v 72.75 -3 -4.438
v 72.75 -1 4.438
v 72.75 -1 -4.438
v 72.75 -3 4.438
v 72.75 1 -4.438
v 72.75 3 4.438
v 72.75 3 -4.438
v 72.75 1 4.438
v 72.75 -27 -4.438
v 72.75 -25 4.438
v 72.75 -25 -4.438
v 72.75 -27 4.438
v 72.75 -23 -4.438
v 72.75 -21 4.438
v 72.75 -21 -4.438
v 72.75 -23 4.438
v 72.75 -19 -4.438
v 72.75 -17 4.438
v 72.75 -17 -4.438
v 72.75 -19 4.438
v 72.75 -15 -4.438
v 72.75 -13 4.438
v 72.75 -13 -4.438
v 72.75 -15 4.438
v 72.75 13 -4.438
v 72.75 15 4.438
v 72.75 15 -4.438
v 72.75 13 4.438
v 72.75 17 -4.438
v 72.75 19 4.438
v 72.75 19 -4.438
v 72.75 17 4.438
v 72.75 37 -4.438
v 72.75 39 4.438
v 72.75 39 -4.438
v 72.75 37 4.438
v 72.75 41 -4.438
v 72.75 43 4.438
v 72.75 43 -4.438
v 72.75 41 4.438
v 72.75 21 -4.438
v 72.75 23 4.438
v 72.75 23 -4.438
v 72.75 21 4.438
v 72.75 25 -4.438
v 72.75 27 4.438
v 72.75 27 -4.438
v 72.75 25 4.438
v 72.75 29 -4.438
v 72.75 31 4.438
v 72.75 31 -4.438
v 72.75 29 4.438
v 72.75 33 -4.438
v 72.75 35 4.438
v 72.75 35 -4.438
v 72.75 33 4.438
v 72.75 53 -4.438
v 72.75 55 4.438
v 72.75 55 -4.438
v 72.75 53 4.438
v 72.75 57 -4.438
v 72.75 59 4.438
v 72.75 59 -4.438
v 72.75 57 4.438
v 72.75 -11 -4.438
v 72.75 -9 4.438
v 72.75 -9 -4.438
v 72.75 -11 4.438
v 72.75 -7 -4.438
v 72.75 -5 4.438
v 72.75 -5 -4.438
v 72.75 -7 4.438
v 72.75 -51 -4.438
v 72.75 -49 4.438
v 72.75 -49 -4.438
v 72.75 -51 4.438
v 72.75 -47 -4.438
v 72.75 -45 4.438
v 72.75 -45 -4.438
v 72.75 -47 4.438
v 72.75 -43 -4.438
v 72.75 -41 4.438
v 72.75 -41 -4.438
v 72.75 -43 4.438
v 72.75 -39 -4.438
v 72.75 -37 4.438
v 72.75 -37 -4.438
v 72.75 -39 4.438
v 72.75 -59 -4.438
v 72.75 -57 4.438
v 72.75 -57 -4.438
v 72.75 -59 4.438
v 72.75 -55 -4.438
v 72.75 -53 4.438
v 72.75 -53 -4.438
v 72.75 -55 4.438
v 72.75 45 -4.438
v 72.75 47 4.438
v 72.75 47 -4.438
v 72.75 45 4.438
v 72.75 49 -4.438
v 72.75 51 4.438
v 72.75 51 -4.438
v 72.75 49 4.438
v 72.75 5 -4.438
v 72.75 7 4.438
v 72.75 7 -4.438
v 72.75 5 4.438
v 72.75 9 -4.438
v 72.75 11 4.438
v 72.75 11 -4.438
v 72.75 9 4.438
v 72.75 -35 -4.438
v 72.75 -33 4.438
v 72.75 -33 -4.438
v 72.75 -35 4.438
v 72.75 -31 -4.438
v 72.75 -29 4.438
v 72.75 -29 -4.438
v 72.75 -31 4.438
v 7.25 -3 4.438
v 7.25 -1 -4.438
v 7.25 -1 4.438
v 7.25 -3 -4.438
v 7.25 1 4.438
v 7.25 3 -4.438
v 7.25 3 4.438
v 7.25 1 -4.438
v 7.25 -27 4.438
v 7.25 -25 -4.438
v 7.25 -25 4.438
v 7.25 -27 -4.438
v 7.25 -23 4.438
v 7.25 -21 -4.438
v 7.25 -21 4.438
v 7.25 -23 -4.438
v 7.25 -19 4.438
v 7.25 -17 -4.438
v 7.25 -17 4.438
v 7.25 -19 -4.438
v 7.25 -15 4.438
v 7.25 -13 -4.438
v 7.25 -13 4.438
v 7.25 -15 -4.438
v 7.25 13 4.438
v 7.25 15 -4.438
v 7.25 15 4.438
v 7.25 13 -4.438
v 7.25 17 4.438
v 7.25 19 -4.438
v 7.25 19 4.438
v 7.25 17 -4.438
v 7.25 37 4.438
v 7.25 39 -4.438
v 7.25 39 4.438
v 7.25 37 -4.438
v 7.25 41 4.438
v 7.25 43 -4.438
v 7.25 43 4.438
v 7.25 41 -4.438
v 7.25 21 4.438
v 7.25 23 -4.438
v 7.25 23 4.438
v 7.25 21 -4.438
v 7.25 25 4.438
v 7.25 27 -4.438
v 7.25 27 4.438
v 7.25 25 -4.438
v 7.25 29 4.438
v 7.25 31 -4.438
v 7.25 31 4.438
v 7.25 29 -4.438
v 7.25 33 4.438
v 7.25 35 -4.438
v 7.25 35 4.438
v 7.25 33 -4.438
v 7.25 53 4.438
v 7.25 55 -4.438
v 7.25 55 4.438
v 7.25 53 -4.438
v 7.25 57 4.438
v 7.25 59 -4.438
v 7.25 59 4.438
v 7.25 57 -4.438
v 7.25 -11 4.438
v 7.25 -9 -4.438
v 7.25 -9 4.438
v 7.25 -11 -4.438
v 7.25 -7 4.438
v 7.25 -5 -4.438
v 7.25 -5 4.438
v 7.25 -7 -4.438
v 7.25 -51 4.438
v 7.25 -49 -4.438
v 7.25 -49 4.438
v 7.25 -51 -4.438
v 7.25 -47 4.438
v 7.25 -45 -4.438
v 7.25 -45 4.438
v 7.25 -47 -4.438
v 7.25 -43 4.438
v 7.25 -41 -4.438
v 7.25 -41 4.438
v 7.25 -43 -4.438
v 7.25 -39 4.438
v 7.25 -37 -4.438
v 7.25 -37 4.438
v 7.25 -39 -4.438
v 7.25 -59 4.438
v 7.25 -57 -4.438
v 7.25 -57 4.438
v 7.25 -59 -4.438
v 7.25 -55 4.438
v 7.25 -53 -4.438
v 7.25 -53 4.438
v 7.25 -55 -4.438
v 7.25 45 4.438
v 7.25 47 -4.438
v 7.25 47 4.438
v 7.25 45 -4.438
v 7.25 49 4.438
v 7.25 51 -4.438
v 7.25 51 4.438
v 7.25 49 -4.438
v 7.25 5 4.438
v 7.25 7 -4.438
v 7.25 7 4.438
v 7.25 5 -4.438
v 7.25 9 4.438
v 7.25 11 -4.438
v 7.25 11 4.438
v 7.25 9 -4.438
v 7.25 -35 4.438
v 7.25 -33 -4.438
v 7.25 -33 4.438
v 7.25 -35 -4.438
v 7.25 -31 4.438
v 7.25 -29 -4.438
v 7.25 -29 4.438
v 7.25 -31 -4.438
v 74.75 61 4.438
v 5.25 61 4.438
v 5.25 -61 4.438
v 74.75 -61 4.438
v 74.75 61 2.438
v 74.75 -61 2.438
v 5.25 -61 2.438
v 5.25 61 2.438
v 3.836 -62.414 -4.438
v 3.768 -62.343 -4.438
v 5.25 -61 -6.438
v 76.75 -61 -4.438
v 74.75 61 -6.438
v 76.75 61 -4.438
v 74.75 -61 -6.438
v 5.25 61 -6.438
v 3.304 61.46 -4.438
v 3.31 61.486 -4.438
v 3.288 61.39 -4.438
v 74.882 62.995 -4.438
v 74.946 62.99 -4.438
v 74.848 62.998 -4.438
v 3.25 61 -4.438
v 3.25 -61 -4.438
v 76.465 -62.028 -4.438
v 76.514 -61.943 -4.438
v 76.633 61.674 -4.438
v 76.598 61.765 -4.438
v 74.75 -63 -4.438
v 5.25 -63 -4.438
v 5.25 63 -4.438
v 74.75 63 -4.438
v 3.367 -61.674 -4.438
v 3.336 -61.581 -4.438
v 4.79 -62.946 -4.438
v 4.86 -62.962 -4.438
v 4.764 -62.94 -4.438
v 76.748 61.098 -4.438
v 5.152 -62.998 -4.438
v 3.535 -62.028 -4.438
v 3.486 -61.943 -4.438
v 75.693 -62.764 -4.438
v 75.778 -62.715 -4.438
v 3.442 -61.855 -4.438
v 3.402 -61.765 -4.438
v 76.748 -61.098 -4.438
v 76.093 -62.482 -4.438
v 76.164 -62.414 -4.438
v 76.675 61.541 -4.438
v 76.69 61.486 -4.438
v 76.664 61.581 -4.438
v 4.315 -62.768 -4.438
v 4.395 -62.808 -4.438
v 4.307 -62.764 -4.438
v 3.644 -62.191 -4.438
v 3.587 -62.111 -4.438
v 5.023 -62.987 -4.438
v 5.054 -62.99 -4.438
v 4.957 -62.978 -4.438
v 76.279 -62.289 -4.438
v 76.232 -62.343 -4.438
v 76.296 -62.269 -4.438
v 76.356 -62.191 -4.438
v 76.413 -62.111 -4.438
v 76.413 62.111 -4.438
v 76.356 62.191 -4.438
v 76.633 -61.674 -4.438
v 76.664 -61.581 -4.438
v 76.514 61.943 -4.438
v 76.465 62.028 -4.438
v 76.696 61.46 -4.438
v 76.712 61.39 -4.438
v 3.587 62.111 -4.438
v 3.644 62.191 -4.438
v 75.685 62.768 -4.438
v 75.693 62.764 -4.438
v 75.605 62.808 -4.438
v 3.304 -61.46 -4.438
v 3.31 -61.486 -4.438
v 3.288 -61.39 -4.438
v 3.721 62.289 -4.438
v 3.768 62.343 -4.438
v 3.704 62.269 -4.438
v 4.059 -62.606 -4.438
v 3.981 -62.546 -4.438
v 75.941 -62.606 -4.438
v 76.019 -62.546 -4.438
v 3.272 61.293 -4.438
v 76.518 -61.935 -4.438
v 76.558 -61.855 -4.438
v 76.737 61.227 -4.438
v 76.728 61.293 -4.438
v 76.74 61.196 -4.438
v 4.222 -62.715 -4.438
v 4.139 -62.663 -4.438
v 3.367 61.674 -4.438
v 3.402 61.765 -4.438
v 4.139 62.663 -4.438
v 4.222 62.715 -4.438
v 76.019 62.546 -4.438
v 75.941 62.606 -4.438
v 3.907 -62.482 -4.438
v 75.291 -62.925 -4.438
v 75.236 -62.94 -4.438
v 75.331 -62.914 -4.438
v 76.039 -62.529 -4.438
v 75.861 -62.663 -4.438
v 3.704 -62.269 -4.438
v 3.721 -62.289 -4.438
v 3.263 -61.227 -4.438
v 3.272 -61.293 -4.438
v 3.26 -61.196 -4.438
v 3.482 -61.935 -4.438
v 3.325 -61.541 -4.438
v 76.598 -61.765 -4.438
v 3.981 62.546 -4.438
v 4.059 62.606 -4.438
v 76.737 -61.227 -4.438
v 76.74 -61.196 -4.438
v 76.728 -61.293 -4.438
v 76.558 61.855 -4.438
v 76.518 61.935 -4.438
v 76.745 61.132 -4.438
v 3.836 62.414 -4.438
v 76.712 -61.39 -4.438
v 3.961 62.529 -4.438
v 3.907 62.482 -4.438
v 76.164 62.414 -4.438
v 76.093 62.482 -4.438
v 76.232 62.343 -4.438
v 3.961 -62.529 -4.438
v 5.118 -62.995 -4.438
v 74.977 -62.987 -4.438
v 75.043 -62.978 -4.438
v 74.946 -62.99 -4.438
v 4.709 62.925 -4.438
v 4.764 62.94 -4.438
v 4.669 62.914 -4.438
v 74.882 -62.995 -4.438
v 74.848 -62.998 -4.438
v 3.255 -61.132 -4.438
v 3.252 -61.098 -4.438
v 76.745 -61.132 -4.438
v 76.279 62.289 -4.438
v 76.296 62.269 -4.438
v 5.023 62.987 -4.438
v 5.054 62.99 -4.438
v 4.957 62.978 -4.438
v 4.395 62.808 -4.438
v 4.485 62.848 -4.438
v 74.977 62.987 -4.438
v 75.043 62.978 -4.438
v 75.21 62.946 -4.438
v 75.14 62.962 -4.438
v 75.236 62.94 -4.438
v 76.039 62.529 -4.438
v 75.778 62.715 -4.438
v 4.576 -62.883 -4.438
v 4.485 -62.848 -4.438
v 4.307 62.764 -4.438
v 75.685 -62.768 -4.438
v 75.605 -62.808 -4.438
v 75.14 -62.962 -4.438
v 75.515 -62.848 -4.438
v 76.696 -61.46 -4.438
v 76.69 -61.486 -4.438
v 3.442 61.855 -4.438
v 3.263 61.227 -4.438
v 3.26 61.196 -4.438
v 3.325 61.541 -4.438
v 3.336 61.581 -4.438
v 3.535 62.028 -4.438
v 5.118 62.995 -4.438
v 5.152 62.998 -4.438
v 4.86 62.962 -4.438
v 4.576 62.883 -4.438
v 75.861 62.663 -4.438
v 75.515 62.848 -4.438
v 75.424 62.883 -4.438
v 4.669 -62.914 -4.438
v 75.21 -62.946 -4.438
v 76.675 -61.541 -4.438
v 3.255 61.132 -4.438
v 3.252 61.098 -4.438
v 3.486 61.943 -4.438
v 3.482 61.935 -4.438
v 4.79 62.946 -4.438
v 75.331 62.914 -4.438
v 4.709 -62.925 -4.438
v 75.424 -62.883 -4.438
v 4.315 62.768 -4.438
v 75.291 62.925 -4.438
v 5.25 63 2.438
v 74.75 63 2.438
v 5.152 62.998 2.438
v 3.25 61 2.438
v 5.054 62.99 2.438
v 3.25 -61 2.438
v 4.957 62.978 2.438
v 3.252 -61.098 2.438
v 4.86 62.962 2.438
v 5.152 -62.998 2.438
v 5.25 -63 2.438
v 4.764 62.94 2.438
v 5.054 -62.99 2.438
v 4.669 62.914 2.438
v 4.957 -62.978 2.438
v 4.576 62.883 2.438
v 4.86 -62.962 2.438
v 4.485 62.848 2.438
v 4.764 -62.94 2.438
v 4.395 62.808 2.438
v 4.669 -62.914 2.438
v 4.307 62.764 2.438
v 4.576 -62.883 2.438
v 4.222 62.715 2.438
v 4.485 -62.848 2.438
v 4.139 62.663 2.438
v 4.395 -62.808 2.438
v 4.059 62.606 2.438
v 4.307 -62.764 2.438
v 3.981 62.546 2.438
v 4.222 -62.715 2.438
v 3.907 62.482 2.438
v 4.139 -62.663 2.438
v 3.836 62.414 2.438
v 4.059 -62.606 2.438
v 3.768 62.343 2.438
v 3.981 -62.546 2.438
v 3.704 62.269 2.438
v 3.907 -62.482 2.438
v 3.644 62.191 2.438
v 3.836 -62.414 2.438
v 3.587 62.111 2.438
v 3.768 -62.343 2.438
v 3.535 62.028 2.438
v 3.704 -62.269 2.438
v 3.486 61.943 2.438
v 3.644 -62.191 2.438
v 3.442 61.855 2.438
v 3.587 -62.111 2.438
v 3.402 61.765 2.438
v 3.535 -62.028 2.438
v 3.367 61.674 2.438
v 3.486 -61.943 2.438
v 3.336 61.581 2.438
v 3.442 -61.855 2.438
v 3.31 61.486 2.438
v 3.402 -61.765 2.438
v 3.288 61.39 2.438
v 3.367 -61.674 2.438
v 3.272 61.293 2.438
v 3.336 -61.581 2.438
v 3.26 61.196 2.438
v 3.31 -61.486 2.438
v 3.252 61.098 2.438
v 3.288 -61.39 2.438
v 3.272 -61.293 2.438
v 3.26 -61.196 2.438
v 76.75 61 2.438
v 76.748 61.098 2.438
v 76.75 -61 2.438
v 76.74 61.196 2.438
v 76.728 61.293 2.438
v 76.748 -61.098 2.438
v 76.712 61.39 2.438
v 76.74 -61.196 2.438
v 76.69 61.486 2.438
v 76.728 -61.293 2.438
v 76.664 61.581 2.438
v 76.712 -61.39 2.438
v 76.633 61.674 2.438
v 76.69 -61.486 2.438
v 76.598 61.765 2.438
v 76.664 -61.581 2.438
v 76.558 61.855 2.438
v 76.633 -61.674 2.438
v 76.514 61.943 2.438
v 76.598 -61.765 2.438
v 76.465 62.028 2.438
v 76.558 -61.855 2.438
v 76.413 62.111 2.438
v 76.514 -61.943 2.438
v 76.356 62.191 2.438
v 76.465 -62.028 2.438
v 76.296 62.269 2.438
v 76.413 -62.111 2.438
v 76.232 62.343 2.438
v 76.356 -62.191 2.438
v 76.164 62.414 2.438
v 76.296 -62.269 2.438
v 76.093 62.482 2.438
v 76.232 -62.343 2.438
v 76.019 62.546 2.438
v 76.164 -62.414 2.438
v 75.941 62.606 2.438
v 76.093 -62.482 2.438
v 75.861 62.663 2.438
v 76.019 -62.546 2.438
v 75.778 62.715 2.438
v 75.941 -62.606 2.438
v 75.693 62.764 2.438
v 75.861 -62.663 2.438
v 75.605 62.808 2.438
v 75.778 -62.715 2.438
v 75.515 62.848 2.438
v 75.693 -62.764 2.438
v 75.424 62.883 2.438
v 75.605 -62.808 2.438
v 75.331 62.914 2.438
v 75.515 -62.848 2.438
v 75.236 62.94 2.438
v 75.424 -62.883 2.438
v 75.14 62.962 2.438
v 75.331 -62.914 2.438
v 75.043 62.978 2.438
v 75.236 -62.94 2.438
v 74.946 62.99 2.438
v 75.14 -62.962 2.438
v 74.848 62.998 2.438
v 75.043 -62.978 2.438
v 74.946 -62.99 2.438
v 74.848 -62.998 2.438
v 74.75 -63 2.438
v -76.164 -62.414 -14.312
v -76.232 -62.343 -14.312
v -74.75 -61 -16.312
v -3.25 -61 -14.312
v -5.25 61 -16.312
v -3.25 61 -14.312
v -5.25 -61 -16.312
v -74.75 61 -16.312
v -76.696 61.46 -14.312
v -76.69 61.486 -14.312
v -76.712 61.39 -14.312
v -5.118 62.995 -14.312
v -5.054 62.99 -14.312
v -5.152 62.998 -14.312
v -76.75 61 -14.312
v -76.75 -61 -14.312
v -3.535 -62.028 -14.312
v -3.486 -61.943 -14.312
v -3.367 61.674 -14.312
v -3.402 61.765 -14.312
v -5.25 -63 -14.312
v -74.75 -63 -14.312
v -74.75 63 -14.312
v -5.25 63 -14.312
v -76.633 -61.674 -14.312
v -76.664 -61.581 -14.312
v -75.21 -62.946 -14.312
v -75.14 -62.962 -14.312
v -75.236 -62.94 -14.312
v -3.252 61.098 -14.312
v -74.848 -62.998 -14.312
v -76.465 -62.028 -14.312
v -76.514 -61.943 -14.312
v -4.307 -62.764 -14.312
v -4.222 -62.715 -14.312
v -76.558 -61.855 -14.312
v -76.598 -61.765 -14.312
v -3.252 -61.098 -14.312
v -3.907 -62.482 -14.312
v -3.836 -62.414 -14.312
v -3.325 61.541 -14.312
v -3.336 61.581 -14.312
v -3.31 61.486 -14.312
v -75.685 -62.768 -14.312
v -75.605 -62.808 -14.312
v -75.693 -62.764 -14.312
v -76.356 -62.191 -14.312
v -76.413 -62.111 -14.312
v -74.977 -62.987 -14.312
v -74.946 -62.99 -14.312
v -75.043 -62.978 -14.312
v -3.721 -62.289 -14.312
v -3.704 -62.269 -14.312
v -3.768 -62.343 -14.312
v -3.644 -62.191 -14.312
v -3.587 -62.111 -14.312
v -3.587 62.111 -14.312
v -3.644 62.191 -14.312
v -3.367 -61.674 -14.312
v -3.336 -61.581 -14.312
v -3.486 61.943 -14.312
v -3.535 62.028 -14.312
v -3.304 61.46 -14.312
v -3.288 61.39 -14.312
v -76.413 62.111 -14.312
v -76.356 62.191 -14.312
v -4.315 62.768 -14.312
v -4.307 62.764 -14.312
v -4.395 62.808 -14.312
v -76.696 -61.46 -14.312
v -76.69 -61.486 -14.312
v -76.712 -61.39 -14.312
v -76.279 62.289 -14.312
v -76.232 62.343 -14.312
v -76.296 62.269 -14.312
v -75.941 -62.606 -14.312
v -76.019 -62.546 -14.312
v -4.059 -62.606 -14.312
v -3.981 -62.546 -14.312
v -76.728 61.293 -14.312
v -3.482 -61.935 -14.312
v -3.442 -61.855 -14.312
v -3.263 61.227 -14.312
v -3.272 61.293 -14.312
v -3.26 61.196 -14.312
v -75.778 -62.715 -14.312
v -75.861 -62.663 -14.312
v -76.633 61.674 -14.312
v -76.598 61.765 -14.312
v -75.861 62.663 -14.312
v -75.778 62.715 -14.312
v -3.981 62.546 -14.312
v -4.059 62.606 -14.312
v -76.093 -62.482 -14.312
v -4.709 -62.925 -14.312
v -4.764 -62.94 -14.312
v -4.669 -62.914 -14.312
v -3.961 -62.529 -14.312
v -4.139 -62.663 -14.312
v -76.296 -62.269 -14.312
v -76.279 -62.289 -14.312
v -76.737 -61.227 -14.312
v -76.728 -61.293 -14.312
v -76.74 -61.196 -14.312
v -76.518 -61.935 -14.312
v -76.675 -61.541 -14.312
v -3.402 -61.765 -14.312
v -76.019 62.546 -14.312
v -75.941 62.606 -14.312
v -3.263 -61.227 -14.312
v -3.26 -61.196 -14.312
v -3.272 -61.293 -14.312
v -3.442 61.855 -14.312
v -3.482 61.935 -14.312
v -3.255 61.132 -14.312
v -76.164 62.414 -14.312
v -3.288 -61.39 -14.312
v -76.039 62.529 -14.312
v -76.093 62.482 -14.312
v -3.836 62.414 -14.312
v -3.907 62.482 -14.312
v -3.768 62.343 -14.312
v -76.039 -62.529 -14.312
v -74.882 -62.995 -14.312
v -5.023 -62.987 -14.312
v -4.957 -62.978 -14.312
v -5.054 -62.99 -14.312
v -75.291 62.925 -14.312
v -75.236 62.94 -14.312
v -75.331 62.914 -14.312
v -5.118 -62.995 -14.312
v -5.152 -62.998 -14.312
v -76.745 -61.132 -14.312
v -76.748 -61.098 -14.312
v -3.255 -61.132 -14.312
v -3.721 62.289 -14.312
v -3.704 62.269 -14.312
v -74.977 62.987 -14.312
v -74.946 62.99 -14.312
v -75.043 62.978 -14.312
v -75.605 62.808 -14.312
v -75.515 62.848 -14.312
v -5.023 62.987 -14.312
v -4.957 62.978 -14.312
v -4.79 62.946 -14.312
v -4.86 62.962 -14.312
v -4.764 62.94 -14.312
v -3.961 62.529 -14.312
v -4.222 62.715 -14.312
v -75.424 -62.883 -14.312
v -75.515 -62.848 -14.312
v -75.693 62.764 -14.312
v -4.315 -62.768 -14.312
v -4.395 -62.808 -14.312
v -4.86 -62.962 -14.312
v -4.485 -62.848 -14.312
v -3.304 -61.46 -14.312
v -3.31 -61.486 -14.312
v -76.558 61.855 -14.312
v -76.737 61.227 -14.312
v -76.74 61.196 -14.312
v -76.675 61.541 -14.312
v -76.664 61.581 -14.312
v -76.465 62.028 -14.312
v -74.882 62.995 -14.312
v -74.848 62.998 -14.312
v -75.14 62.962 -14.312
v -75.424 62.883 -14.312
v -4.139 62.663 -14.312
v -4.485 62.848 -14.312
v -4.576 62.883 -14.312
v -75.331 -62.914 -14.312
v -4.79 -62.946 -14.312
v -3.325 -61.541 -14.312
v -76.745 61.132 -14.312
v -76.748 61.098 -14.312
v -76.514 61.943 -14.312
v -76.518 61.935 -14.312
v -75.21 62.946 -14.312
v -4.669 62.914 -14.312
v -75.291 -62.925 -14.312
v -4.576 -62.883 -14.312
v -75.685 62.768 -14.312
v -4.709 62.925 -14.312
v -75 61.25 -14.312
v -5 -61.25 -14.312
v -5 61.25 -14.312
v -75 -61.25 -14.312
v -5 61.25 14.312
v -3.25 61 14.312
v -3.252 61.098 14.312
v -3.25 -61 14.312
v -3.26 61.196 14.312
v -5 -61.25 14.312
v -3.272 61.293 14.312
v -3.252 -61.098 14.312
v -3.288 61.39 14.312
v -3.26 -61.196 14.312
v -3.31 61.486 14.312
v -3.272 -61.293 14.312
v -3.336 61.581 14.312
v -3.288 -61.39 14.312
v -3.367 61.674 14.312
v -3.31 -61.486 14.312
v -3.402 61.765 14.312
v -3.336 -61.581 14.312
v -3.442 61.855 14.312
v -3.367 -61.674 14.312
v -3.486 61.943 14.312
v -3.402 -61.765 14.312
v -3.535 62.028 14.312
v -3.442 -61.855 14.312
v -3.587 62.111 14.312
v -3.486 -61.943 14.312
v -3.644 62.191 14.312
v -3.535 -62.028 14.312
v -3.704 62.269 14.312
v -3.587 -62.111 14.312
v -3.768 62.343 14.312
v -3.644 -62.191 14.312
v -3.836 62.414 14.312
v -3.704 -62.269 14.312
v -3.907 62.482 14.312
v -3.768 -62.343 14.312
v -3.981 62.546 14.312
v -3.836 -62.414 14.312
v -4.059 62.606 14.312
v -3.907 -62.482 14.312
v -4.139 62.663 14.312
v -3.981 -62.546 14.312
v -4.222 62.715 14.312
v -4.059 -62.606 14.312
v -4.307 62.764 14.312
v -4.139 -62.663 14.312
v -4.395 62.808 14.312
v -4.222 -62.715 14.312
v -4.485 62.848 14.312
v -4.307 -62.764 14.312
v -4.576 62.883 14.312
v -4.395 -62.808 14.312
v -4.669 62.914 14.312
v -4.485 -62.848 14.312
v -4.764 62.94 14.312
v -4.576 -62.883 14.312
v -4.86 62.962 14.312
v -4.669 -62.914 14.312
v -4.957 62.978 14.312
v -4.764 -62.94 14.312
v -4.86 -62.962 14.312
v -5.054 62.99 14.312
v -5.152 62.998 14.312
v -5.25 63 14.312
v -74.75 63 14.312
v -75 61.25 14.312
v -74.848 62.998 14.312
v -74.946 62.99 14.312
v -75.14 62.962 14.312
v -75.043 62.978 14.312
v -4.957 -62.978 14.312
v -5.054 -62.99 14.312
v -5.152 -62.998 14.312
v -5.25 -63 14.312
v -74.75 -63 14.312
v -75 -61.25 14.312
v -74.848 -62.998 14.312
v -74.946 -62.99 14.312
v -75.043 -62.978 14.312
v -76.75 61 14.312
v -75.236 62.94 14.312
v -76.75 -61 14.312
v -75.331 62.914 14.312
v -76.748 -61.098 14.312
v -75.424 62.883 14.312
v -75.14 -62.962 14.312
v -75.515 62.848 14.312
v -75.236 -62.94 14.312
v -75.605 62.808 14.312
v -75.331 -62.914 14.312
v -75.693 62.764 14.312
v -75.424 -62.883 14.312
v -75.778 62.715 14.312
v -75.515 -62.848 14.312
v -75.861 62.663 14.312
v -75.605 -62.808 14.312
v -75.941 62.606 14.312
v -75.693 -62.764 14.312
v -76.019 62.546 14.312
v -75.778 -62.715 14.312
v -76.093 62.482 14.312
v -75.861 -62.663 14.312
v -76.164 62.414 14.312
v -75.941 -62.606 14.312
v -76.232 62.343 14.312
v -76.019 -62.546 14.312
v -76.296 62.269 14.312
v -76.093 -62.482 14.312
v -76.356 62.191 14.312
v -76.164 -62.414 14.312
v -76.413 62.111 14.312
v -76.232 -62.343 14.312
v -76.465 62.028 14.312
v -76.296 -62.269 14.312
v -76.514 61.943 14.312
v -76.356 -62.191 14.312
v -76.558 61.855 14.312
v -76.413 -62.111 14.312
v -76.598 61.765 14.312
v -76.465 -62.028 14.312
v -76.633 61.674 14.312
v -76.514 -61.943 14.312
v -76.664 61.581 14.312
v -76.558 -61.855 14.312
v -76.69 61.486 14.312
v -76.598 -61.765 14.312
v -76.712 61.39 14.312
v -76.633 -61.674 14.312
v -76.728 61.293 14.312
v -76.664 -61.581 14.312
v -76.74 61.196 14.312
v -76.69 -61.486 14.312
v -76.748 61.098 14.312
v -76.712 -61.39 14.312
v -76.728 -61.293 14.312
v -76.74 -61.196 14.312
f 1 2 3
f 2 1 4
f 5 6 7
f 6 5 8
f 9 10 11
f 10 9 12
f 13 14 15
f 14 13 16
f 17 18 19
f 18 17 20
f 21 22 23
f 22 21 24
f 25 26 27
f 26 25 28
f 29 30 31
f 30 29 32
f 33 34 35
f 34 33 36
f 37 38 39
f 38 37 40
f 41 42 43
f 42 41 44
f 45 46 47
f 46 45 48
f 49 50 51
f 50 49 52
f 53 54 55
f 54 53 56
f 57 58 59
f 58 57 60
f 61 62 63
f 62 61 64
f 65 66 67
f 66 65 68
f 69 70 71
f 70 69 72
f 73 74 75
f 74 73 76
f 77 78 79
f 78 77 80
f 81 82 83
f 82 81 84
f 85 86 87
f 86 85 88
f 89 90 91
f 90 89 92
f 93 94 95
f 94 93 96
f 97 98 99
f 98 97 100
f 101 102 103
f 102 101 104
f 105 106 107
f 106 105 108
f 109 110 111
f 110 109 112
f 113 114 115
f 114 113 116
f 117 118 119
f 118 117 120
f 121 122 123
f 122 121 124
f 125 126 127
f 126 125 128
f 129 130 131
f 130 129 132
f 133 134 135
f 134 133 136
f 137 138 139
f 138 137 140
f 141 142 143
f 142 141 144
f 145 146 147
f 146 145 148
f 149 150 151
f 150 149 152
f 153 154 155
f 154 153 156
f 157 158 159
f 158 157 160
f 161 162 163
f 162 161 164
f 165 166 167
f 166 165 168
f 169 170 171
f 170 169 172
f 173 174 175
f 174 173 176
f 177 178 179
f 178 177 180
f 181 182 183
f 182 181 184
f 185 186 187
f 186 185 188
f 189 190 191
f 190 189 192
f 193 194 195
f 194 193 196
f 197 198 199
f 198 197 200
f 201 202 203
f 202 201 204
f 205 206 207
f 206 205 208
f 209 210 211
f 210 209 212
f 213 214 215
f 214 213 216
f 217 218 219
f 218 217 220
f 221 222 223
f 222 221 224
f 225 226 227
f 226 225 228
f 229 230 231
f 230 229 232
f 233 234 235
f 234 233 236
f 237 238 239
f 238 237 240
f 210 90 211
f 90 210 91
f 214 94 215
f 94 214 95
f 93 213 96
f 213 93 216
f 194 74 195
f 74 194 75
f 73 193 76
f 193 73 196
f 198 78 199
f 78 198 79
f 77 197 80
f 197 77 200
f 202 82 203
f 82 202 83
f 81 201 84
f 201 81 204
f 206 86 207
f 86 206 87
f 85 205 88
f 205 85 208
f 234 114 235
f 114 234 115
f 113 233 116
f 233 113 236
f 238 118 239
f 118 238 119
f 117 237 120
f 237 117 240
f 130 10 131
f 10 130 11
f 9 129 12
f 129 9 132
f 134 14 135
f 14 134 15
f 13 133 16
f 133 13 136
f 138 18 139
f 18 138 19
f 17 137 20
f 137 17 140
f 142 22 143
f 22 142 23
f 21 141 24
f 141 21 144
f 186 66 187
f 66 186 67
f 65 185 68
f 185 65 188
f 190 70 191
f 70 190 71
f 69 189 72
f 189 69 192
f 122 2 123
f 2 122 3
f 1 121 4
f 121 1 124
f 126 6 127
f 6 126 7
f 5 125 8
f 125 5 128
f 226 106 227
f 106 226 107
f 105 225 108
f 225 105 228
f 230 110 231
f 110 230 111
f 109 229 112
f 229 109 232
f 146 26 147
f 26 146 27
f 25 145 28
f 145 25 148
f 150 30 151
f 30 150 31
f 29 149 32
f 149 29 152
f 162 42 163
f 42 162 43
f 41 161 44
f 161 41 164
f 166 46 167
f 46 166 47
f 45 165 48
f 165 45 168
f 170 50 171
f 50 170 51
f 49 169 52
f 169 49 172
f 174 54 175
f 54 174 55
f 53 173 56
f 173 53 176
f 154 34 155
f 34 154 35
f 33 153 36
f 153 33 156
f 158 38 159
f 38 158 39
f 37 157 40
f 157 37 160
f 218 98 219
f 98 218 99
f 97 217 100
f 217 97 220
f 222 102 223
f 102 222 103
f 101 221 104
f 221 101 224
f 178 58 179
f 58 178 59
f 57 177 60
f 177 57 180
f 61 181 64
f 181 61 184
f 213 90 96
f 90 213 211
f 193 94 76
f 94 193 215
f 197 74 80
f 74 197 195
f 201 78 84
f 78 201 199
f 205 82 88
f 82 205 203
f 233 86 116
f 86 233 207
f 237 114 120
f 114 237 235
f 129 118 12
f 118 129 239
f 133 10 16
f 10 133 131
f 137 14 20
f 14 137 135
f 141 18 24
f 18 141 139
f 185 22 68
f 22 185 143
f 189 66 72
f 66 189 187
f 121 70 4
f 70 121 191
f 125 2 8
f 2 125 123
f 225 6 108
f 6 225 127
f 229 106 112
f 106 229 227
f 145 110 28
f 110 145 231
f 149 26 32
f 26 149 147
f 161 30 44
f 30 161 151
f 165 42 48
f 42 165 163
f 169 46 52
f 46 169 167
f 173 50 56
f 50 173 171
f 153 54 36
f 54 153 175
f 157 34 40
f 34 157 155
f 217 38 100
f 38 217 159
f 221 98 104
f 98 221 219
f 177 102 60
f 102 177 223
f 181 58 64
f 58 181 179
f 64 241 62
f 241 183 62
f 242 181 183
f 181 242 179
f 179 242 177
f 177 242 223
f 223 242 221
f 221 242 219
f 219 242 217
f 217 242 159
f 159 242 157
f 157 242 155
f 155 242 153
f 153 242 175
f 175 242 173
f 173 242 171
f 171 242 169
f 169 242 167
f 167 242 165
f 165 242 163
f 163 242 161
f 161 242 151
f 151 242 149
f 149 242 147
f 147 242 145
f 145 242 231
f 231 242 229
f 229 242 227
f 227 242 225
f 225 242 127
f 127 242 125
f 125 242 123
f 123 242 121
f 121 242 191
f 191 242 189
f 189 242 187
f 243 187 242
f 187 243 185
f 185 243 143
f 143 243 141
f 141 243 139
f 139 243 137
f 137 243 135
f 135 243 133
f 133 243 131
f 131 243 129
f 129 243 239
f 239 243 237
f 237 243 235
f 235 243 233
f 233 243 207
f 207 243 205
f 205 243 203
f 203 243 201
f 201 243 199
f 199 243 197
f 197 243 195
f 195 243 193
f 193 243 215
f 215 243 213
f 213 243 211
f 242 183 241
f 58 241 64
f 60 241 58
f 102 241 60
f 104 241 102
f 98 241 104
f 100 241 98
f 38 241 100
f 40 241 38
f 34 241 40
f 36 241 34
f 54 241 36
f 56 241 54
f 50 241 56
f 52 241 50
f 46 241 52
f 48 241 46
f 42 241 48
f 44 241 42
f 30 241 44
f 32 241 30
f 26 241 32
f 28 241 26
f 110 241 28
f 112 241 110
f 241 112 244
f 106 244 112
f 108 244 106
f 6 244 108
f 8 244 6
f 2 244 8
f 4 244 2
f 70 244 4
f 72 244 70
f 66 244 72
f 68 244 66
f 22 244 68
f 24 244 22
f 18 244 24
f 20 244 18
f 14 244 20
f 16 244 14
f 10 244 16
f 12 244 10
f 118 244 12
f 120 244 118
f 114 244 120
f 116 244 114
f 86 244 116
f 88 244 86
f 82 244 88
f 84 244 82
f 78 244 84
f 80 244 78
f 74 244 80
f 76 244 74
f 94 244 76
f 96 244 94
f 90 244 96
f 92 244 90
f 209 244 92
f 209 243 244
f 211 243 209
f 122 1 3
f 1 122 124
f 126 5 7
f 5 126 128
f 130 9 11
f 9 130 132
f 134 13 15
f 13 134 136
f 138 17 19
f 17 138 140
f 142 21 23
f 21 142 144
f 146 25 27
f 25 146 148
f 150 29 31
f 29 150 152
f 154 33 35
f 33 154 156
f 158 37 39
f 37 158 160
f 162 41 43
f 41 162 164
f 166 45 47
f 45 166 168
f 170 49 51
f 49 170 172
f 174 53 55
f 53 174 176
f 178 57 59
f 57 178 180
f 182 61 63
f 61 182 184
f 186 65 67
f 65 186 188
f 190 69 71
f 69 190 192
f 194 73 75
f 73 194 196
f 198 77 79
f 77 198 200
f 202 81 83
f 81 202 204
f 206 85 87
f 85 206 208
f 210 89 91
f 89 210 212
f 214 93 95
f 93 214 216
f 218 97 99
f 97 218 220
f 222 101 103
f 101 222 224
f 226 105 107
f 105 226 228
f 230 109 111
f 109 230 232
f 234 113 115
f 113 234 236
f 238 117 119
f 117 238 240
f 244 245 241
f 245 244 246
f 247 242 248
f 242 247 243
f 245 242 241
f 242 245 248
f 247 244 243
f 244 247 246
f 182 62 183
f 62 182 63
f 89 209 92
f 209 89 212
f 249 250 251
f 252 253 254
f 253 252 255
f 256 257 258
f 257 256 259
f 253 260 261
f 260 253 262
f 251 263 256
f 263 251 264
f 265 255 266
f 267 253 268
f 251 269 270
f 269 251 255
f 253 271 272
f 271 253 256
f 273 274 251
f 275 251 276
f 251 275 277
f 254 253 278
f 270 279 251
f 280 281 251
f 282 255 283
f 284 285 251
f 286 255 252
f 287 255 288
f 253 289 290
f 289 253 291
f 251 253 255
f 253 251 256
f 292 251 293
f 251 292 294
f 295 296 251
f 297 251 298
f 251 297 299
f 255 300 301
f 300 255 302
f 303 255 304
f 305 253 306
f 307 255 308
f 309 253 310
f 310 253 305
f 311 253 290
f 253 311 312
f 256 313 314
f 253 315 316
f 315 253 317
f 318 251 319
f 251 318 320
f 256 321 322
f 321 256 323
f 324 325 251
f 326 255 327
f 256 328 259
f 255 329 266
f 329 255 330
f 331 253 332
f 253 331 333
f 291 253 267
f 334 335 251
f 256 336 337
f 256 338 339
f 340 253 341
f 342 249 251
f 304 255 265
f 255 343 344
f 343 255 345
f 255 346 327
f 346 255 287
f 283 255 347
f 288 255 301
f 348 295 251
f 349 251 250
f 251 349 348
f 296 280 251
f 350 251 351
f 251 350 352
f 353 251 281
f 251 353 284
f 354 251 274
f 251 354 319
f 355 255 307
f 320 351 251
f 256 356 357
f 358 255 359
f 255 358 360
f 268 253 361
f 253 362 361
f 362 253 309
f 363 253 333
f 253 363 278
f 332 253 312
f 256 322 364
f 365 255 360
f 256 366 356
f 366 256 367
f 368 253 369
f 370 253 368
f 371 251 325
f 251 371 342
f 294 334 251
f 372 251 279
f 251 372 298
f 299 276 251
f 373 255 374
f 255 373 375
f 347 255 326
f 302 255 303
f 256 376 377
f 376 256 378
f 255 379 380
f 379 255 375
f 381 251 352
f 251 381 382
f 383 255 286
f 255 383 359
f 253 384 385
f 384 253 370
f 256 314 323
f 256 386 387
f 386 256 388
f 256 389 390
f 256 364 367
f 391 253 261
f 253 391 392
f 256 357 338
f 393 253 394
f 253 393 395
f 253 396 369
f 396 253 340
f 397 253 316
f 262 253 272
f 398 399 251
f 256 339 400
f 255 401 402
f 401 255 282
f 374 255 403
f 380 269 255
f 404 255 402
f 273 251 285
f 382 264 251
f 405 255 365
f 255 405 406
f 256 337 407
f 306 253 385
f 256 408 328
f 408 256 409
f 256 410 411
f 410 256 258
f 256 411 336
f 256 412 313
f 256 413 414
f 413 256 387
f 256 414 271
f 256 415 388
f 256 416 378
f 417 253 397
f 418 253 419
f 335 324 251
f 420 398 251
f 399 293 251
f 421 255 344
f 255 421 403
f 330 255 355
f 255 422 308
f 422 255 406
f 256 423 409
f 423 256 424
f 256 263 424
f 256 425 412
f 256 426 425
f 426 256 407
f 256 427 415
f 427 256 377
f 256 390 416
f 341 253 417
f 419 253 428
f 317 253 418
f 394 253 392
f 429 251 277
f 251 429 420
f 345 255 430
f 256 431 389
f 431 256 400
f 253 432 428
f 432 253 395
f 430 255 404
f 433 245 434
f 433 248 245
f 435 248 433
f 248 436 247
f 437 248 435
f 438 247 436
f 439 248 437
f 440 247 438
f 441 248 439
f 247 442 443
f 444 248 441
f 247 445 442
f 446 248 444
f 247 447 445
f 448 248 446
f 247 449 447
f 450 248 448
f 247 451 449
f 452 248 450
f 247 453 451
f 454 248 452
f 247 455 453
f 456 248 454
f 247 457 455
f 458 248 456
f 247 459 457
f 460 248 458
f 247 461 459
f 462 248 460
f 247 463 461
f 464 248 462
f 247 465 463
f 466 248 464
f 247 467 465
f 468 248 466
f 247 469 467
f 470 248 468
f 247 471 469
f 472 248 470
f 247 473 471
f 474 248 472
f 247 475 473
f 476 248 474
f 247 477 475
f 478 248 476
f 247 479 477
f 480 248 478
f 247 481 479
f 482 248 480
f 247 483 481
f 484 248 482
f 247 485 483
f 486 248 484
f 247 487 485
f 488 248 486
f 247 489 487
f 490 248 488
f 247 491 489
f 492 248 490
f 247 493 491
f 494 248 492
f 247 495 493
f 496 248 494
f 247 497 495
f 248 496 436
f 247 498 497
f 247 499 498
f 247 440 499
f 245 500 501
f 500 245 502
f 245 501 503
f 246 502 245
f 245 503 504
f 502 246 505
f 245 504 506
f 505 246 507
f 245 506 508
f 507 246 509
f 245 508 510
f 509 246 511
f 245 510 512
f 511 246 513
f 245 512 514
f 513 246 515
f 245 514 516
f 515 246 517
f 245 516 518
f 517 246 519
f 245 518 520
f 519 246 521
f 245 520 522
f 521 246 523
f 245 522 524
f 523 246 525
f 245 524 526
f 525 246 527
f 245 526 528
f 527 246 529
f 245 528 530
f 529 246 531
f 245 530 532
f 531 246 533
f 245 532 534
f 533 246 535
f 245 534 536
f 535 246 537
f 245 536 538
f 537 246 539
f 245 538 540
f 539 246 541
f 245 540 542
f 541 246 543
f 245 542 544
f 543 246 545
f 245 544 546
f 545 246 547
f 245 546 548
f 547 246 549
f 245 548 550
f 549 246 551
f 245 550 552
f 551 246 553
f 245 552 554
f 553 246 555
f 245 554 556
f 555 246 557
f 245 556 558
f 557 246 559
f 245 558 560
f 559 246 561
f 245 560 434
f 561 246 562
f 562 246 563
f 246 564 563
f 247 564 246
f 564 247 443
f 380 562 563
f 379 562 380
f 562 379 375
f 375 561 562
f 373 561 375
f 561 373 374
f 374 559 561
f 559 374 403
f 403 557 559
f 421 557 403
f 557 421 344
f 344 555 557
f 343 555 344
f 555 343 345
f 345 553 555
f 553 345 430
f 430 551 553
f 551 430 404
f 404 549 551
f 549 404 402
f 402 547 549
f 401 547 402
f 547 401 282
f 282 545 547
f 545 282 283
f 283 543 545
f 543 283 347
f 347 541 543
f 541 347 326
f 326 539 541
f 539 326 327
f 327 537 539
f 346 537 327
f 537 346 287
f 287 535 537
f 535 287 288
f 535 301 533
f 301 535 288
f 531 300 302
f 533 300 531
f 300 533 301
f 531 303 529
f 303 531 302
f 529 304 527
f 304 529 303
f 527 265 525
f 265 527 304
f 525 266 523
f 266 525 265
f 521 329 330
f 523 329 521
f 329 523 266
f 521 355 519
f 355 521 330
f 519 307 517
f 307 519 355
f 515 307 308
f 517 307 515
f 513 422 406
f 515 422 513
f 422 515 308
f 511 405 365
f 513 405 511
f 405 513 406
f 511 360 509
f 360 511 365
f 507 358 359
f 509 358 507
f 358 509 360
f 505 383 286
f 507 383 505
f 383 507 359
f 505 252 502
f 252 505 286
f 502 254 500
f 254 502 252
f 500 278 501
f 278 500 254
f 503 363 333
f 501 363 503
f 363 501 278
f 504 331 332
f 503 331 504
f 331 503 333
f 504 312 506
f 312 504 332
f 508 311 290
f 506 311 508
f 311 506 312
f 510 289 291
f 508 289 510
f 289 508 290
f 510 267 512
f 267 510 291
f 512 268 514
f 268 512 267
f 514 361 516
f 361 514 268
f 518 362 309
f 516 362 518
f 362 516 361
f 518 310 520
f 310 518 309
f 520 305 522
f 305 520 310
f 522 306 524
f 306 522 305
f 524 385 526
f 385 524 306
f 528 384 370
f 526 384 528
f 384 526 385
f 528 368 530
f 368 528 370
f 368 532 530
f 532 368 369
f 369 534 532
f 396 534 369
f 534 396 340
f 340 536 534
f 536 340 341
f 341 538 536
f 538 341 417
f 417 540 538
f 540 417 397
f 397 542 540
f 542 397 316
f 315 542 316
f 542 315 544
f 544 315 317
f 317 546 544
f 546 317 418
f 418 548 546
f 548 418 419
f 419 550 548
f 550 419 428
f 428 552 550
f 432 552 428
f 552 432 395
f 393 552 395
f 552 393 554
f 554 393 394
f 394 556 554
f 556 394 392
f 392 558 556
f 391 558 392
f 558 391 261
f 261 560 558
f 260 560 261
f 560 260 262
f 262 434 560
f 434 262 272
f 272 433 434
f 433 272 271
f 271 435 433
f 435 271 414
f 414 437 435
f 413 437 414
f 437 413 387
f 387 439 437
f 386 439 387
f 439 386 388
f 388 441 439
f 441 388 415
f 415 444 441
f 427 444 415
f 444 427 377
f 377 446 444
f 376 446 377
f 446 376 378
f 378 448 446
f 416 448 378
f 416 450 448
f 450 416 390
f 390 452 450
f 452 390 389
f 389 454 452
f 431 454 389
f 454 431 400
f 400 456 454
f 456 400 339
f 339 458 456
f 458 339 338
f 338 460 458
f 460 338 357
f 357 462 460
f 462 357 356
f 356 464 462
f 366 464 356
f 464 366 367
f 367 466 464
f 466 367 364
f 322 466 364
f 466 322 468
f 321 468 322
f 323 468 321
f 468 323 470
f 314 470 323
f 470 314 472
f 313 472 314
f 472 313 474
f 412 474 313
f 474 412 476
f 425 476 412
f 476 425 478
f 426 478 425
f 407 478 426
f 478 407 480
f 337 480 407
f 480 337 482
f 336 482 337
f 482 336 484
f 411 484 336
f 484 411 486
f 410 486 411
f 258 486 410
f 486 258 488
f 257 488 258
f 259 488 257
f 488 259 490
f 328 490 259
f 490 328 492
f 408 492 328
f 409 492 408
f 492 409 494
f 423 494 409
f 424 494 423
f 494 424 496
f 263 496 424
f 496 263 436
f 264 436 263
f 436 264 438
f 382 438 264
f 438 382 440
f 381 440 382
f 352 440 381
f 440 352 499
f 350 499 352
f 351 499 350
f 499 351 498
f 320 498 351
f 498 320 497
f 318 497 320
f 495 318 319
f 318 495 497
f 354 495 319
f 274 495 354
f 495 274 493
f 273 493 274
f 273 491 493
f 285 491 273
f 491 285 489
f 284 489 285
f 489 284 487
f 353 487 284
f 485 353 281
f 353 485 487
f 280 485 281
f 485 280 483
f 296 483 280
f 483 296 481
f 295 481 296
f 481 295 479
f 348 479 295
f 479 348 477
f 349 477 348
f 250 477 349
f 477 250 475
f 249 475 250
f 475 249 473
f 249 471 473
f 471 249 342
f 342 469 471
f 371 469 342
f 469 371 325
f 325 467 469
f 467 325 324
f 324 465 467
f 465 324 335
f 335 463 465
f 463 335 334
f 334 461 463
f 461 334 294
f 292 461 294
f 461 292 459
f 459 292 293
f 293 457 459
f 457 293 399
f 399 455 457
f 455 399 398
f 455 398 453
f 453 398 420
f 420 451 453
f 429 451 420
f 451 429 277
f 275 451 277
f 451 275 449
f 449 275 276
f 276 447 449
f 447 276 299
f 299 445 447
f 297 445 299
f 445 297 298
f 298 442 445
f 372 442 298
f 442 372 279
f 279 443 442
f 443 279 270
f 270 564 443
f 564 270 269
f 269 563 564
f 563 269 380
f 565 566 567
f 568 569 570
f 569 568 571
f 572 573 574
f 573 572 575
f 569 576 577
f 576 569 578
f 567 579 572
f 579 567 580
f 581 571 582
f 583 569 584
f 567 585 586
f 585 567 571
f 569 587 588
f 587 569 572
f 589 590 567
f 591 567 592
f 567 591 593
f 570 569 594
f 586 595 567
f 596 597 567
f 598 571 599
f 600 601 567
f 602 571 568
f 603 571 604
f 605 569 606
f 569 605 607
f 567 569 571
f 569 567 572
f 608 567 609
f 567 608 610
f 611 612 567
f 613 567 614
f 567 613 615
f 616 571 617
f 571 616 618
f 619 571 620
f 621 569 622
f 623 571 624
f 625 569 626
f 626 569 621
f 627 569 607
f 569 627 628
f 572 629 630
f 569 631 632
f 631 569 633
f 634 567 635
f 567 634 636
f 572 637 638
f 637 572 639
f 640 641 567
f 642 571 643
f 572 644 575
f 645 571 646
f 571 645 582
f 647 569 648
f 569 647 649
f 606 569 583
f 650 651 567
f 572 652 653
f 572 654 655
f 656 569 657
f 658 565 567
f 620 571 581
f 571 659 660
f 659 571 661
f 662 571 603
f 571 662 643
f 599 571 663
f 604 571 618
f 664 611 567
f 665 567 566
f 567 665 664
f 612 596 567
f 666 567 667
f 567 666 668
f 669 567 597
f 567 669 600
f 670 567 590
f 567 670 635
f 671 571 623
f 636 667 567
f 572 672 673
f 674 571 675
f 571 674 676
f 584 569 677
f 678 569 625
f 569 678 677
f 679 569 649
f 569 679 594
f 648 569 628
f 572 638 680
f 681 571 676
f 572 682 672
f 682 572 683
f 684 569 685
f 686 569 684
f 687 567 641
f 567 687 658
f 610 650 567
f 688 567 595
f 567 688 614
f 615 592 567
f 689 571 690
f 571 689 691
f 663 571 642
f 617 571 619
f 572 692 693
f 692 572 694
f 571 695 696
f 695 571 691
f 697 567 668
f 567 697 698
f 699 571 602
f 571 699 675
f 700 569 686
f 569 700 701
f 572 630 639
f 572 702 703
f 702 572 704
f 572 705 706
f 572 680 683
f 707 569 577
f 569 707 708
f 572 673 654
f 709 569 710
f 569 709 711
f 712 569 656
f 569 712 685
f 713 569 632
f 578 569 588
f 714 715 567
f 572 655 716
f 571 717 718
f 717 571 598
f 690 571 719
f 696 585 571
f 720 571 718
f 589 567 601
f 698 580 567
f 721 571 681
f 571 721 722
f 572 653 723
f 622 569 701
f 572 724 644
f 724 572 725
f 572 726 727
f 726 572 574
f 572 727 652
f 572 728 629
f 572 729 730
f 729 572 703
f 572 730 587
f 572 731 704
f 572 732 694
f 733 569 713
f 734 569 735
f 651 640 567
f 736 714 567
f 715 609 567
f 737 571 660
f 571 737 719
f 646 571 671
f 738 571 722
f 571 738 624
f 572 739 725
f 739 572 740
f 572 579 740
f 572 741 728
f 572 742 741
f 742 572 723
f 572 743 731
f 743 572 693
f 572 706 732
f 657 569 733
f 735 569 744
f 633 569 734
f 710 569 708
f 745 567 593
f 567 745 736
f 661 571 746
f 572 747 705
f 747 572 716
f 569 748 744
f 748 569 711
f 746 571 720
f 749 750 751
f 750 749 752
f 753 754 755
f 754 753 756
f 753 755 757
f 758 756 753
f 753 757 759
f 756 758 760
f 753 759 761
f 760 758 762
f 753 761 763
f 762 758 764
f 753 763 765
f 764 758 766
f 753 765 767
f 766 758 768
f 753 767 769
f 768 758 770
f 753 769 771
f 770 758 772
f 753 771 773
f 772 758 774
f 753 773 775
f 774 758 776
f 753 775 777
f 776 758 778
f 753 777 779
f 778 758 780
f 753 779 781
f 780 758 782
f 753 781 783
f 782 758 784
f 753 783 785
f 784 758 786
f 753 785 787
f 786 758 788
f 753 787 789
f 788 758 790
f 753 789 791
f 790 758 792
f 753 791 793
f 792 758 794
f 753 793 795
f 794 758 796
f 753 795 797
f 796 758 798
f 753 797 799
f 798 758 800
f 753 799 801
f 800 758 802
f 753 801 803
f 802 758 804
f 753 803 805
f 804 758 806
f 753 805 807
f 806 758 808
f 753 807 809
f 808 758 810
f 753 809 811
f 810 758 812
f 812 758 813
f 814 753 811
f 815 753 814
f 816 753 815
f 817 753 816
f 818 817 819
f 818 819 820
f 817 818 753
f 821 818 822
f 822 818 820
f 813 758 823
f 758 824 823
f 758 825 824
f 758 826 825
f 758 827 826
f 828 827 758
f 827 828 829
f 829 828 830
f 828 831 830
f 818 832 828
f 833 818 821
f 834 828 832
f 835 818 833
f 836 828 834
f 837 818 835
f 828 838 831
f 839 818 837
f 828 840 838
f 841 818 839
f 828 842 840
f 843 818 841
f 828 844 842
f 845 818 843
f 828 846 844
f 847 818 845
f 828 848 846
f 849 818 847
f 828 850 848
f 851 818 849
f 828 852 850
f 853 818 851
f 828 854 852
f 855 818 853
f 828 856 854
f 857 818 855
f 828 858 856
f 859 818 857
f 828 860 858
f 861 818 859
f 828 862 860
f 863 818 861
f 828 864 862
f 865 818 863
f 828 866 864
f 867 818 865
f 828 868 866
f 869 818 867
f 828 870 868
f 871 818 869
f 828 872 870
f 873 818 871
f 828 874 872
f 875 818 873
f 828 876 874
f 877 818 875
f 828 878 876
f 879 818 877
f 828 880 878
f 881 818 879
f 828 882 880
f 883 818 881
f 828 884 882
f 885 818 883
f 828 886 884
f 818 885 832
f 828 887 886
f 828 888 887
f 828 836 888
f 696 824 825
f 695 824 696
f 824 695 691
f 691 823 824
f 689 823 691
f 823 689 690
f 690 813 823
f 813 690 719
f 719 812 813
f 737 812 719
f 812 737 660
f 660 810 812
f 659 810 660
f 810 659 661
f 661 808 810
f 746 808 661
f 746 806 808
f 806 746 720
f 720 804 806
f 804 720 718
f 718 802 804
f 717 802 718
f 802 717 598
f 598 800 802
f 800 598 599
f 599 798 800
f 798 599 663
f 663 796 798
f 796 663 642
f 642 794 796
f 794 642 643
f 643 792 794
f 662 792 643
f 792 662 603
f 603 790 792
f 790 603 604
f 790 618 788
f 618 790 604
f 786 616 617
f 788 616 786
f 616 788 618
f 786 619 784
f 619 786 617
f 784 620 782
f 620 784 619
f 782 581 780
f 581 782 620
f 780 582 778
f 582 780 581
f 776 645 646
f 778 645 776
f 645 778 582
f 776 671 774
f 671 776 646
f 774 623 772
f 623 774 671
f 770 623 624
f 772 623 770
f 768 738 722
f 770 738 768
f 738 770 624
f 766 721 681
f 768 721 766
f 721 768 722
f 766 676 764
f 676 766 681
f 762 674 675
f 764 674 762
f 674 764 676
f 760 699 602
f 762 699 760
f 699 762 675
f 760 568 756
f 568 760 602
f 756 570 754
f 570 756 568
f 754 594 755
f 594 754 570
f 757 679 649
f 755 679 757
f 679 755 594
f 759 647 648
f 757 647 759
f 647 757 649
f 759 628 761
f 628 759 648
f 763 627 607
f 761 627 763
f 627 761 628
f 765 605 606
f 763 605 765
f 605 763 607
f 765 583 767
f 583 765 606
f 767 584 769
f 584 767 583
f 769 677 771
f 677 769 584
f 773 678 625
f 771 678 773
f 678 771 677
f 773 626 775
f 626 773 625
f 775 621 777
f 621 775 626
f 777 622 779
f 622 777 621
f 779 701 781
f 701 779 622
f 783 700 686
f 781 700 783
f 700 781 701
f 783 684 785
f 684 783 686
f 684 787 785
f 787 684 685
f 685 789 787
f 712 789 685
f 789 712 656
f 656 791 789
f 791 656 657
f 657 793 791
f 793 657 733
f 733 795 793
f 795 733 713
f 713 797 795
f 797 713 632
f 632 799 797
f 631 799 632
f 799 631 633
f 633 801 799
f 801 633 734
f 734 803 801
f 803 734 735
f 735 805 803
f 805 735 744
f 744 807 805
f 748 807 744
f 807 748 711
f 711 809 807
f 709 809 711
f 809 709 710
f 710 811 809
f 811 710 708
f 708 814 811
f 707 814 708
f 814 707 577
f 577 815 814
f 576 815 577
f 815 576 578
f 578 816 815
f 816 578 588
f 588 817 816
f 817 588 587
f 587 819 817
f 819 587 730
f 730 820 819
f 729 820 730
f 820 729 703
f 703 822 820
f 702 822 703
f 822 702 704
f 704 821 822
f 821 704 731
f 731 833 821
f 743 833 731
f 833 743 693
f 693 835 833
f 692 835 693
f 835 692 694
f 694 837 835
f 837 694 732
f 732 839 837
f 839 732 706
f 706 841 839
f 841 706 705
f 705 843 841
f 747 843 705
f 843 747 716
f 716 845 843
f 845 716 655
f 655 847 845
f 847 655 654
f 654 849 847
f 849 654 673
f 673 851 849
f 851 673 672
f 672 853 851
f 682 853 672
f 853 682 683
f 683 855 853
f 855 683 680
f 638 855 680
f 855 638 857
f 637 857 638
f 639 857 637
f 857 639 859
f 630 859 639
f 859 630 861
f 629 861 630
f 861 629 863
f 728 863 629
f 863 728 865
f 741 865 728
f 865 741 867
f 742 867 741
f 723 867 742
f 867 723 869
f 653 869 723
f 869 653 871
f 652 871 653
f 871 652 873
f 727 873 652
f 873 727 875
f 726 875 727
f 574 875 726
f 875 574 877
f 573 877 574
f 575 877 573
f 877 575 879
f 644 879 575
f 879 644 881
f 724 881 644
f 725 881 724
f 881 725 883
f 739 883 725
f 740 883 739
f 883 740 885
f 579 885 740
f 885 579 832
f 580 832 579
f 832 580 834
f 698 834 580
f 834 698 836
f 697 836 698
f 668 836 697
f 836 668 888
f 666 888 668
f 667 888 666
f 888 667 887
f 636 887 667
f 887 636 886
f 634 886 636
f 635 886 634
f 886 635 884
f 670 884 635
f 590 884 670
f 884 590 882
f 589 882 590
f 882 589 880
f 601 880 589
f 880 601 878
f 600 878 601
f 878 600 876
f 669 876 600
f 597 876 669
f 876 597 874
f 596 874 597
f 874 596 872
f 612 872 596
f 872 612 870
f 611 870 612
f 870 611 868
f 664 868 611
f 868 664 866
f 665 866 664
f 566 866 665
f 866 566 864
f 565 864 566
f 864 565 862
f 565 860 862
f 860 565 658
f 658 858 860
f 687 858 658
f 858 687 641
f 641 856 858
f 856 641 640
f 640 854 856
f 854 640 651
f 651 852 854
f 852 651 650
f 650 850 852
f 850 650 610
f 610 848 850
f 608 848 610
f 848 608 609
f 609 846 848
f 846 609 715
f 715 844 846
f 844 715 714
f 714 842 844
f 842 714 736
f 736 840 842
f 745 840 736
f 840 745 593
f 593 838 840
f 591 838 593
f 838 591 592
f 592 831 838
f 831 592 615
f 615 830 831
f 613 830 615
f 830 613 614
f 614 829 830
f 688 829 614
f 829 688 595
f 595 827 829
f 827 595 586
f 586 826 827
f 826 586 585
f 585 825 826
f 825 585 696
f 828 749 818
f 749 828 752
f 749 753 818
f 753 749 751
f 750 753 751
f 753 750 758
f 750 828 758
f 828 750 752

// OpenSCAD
$fn = 128;

module tray(gauge_width, gauge_height, guage_thickness, gauge_range, t_radius, wall_thickness) {
    gauge_slots_length = ((gauge_range[1] - 1) * wall_thickness) + (gauge_range[1] * guage_thickness);
    gauge_slots_height = gauge_height * 0.25;

    tray_length = gauge_slots_length + (wall_thickness * 2);
    tray_width = gauge_width + (wall_thickness * 2);
    tray_height = gauge_slots_height;

    lip_length = tray_length + (wall_thickness * 2);
    lip_width = tray_width + (wall_thickness * 2);

    union() {
        difference() {
            cube([gauge_width, gauge_slots_length, gauge_slots_height], center = true);

            for(count = [gauge_range[0] : gauge_range[1]]) {
                start_y = -(gauge_slots_length / 2);
                wall_offset = (count - 1) * wall_thickness;
                gauge_offset = (count - 1) * guage_thickness;
                y_pos = start_y + gauge_offset + wall_offset;
                translate([-(gauge_width / 2), y_pos, -(gauge_height / 2)])
                    cube([gauge_width, guage_thickness, gauge_height]);
            };
        };

        difference() {
            cube([tray_width, tray_length, tray_height], center = true);

            cube([gauge_width, gauge_slots_length, gauge_slots_height], center = true);
        };

        translate([0, 0, -(wall_thickness / 2)])
            linear_extrude(tray_height - wall_thickness, center = true)
                difference() {
                    offset(r = t_radius) {
                        square([(lip_width - (t_radius * 2)), (lip_length - (t_radius * 2))], center = true);
                    };

                    square([tray_width, tray_length], center = true);
                };

        translate([0, 0, -((tray_height / 2) + (wall_thickness / 2))])
            difference() {
                minkowski() {
                    cube([tray_width, tray_length, wall_thickness], center = true);
                    cylinder(h = wall_thickness, r1 = 0, r2 = t_radius);
                };

                translate([0, 0, wall_thickness])
                    cube([lip_width, lip_length, wall_thickness], center = true);
            };
    };
};

module lid(gauge_width, gauge_height, guage_thickness, gauge_range, t_radius, wall_thickness, p_tolerance) {
    outer_length = ((gauge_range[1] - 1) * wall_thickness) + (gauge_range[1] * guage_thickness) + (wall_thickness * 4);
    outer_width = gauge_width + (wall_thickness * 4);

    inner_height = (gauge_height * 0.75) + wall_thickness;
    inner_width = outer_width - (wall_thickness * 2);
    inner_length = outer_length - (wall_thickness * 2);

    union() {
        linear_extrude(inner_height, center = true)
            difference() {
                offset(r = t_radius) {
                    square([(outer_width - (t_radius * 2)), (outer_length - (t_radius * 2))], center = true);
                };

                square([inner_width + p_tolerance, inner_length + p_tolerance], center = true);
            };

        translate([0, 0, -((inner_height / 2) + (wall_thickness / 2))])
            difference() {
                minkowski() {
                    cube([inner_width, inner_length, wall_thickness], center = true);
                    cylinder(h = wall_thickness, r1 = 0, r2 = t_radius);
                };

                translate([0, 0, wall_thickness])
                    cube([outer_width, outer_length, wall_thickness], center = true);
            };
    };
};

tolerance = 0.5;
radius = 2;
w_thickness = 2;
g_width = 65 + (tolerance);
g_height = 35 + (tolerance);
g_thickness = 1.5 + (tolerance);
g_range = [1, 30];

translate([40, 0, 0])
    tray(g_width, g_height, g_thickness, g_range, radius, w_thickness);
translate([-40, 0, 0])
    lid(g_width, g_height, g_thickness, g_range, radius, w_thickness, tolerance);
